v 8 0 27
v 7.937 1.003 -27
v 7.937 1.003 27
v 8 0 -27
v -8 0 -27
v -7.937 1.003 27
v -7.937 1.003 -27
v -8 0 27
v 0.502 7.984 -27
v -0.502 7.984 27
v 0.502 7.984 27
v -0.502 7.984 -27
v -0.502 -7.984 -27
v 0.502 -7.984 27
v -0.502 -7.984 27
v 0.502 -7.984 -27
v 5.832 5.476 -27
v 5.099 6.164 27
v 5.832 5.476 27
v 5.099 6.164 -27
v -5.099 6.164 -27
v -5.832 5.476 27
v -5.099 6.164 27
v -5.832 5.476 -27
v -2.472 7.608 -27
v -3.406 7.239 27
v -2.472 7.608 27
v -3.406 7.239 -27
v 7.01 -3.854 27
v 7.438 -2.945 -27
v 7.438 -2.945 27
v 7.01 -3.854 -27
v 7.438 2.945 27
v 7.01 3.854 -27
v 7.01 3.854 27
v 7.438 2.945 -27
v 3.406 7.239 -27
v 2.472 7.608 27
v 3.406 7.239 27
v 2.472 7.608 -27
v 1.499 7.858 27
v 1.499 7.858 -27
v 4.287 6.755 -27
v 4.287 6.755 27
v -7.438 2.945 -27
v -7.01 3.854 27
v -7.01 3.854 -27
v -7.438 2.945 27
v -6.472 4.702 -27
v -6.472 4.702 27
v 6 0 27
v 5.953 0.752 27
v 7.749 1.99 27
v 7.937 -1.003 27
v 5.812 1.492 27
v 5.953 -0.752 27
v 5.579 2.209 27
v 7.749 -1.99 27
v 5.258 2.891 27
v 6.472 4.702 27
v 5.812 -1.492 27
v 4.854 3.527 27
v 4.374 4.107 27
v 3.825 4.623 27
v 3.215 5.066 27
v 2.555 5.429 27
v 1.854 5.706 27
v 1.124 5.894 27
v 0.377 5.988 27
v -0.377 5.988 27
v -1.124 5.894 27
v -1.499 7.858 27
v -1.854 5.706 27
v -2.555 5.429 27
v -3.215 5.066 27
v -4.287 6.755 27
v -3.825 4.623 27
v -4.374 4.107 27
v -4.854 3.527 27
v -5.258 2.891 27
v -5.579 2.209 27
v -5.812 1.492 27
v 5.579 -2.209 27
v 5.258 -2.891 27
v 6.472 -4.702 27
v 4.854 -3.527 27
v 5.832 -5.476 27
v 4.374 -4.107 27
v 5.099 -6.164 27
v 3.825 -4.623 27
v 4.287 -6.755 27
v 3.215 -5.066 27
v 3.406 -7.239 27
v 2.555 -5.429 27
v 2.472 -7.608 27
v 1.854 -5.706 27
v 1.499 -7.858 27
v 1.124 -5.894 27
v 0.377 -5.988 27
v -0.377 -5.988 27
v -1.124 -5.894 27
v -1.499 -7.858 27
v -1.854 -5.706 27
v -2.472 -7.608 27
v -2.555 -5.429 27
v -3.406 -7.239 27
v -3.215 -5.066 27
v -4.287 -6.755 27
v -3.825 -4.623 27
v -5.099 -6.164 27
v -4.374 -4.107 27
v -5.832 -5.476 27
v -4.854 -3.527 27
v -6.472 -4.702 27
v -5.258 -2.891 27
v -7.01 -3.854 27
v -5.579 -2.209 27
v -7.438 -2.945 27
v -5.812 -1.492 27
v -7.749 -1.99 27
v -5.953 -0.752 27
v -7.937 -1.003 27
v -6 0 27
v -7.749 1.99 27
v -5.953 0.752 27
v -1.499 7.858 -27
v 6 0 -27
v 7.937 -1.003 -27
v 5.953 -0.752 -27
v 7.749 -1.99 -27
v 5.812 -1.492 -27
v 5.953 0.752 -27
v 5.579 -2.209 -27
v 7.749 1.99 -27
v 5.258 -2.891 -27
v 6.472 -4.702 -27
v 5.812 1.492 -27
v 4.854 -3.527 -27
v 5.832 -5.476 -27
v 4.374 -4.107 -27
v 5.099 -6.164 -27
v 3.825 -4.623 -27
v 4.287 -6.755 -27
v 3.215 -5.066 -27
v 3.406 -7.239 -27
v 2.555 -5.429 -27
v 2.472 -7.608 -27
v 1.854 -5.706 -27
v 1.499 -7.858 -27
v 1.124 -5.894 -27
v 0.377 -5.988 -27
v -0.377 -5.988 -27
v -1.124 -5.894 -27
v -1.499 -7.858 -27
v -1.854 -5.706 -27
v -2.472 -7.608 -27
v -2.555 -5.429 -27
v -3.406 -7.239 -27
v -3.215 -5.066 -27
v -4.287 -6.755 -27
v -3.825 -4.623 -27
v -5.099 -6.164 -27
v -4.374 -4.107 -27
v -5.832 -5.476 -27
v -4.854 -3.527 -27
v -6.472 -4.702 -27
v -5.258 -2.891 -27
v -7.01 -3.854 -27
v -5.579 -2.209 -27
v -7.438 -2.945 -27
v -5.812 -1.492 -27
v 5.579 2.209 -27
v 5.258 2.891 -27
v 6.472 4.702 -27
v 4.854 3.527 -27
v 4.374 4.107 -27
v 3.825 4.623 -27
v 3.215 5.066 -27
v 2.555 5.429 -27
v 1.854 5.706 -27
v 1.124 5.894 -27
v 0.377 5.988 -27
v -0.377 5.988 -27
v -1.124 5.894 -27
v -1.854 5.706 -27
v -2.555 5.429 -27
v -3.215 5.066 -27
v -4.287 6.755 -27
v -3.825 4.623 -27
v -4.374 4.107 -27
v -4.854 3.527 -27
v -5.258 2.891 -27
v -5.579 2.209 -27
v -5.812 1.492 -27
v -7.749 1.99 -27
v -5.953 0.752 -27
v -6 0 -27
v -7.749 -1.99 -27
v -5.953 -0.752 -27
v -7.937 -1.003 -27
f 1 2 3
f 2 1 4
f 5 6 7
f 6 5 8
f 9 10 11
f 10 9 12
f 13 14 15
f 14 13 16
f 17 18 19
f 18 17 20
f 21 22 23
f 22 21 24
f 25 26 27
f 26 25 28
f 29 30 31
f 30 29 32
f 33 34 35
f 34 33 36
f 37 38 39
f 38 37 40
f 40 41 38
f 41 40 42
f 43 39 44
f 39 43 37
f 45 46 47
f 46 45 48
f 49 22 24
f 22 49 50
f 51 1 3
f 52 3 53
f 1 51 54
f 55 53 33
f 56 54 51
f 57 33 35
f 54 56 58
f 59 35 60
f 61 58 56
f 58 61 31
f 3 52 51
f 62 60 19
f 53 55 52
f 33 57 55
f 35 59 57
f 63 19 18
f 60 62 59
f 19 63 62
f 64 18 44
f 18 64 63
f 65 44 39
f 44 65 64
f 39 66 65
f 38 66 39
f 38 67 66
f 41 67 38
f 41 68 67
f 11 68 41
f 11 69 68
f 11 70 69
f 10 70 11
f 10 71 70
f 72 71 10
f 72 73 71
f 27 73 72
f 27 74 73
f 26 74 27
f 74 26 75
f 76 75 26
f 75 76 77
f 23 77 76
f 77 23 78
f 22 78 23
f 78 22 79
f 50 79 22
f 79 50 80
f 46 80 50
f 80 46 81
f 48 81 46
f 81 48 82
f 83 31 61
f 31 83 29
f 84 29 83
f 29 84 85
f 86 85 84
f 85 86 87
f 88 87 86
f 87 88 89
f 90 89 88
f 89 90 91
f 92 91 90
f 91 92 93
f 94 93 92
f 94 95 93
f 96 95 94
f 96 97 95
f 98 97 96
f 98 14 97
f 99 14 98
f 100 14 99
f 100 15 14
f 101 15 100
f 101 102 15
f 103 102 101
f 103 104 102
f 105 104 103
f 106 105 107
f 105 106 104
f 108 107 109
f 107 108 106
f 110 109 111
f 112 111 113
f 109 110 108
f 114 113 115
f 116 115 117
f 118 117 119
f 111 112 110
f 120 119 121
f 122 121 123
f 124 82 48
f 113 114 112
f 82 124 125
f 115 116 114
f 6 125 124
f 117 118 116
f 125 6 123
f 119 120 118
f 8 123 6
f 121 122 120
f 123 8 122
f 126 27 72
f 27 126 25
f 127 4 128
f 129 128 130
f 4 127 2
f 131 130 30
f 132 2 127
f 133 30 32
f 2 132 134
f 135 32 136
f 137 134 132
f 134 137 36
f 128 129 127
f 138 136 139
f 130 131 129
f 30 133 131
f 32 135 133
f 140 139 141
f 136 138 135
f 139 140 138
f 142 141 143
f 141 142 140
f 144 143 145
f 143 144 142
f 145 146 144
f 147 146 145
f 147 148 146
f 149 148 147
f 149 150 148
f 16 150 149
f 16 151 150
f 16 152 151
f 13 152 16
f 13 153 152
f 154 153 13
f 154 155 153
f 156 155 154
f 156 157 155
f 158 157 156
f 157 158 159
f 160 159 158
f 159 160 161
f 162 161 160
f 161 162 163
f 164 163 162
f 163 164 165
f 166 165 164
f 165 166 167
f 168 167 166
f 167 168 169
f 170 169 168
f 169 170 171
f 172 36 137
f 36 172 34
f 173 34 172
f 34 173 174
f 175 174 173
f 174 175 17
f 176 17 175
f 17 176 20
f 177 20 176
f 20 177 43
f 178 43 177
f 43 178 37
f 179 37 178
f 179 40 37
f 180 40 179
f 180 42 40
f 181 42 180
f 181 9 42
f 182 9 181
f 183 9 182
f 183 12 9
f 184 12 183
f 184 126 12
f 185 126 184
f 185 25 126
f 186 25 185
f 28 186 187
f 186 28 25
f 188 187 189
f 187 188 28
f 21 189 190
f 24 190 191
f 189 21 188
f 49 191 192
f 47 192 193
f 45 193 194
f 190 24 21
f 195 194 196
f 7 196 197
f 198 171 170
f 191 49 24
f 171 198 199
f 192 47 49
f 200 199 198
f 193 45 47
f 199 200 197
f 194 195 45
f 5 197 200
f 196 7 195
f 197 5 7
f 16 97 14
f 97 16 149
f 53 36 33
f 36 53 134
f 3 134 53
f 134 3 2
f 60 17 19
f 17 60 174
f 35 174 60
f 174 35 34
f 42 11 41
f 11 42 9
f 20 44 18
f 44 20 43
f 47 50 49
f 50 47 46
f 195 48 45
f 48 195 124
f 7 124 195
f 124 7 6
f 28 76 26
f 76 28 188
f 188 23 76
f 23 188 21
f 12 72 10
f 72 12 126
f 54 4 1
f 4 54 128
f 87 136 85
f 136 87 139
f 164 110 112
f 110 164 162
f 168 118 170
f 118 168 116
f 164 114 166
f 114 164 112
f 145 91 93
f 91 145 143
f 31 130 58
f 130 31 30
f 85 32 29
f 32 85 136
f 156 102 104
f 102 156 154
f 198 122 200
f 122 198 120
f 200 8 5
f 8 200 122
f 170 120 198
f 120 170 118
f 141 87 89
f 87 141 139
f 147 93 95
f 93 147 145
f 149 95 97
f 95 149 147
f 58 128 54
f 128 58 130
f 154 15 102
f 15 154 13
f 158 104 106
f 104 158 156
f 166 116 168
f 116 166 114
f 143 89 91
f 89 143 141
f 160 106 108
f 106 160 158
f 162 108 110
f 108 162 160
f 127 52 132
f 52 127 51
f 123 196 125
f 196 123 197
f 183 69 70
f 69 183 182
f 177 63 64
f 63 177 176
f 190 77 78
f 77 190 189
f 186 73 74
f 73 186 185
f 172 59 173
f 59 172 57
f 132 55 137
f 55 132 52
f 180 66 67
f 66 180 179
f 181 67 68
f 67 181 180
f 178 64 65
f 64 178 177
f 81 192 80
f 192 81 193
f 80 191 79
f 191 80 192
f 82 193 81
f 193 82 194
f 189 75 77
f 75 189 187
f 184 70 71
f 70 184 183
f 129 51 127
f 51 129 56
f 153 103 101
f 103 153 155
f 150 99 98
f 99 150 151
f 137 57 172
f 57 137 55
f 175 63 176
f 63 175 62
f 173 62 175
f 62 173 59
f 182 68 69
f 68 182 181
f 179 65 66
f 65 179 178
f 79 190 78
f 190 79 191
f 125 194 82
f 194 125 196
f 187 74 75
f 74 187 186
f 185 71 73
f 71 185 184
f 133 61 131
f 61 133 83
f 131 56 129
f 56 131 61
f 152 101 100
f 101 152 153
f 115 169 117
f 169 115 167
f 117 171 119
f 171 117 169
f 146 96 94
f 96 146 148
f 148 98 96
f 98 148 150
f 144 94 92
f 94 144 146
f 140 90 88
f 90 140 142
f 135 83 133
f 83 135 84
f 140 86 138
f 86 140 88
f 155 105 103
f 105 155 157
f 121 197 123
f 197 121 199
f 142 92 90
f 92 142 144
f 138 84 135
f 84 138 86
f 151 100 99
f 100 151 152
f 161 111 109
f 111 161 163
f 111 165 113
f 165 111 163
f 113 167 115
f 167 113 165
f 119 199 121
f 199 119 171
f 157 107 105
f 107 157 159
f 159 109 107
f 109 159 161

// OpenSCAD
$fn = 50;


difference() {
	union() {
		translate(v = [0, 0, -27.0000000000]) {
			cylinder(h = 54, r = 8.0000000000);
		}
	}
	union() {
		translate(v = [0, 0, -100.0000000000]) {
			cylinder(h = 200, r = 6);
		}
	}
}
